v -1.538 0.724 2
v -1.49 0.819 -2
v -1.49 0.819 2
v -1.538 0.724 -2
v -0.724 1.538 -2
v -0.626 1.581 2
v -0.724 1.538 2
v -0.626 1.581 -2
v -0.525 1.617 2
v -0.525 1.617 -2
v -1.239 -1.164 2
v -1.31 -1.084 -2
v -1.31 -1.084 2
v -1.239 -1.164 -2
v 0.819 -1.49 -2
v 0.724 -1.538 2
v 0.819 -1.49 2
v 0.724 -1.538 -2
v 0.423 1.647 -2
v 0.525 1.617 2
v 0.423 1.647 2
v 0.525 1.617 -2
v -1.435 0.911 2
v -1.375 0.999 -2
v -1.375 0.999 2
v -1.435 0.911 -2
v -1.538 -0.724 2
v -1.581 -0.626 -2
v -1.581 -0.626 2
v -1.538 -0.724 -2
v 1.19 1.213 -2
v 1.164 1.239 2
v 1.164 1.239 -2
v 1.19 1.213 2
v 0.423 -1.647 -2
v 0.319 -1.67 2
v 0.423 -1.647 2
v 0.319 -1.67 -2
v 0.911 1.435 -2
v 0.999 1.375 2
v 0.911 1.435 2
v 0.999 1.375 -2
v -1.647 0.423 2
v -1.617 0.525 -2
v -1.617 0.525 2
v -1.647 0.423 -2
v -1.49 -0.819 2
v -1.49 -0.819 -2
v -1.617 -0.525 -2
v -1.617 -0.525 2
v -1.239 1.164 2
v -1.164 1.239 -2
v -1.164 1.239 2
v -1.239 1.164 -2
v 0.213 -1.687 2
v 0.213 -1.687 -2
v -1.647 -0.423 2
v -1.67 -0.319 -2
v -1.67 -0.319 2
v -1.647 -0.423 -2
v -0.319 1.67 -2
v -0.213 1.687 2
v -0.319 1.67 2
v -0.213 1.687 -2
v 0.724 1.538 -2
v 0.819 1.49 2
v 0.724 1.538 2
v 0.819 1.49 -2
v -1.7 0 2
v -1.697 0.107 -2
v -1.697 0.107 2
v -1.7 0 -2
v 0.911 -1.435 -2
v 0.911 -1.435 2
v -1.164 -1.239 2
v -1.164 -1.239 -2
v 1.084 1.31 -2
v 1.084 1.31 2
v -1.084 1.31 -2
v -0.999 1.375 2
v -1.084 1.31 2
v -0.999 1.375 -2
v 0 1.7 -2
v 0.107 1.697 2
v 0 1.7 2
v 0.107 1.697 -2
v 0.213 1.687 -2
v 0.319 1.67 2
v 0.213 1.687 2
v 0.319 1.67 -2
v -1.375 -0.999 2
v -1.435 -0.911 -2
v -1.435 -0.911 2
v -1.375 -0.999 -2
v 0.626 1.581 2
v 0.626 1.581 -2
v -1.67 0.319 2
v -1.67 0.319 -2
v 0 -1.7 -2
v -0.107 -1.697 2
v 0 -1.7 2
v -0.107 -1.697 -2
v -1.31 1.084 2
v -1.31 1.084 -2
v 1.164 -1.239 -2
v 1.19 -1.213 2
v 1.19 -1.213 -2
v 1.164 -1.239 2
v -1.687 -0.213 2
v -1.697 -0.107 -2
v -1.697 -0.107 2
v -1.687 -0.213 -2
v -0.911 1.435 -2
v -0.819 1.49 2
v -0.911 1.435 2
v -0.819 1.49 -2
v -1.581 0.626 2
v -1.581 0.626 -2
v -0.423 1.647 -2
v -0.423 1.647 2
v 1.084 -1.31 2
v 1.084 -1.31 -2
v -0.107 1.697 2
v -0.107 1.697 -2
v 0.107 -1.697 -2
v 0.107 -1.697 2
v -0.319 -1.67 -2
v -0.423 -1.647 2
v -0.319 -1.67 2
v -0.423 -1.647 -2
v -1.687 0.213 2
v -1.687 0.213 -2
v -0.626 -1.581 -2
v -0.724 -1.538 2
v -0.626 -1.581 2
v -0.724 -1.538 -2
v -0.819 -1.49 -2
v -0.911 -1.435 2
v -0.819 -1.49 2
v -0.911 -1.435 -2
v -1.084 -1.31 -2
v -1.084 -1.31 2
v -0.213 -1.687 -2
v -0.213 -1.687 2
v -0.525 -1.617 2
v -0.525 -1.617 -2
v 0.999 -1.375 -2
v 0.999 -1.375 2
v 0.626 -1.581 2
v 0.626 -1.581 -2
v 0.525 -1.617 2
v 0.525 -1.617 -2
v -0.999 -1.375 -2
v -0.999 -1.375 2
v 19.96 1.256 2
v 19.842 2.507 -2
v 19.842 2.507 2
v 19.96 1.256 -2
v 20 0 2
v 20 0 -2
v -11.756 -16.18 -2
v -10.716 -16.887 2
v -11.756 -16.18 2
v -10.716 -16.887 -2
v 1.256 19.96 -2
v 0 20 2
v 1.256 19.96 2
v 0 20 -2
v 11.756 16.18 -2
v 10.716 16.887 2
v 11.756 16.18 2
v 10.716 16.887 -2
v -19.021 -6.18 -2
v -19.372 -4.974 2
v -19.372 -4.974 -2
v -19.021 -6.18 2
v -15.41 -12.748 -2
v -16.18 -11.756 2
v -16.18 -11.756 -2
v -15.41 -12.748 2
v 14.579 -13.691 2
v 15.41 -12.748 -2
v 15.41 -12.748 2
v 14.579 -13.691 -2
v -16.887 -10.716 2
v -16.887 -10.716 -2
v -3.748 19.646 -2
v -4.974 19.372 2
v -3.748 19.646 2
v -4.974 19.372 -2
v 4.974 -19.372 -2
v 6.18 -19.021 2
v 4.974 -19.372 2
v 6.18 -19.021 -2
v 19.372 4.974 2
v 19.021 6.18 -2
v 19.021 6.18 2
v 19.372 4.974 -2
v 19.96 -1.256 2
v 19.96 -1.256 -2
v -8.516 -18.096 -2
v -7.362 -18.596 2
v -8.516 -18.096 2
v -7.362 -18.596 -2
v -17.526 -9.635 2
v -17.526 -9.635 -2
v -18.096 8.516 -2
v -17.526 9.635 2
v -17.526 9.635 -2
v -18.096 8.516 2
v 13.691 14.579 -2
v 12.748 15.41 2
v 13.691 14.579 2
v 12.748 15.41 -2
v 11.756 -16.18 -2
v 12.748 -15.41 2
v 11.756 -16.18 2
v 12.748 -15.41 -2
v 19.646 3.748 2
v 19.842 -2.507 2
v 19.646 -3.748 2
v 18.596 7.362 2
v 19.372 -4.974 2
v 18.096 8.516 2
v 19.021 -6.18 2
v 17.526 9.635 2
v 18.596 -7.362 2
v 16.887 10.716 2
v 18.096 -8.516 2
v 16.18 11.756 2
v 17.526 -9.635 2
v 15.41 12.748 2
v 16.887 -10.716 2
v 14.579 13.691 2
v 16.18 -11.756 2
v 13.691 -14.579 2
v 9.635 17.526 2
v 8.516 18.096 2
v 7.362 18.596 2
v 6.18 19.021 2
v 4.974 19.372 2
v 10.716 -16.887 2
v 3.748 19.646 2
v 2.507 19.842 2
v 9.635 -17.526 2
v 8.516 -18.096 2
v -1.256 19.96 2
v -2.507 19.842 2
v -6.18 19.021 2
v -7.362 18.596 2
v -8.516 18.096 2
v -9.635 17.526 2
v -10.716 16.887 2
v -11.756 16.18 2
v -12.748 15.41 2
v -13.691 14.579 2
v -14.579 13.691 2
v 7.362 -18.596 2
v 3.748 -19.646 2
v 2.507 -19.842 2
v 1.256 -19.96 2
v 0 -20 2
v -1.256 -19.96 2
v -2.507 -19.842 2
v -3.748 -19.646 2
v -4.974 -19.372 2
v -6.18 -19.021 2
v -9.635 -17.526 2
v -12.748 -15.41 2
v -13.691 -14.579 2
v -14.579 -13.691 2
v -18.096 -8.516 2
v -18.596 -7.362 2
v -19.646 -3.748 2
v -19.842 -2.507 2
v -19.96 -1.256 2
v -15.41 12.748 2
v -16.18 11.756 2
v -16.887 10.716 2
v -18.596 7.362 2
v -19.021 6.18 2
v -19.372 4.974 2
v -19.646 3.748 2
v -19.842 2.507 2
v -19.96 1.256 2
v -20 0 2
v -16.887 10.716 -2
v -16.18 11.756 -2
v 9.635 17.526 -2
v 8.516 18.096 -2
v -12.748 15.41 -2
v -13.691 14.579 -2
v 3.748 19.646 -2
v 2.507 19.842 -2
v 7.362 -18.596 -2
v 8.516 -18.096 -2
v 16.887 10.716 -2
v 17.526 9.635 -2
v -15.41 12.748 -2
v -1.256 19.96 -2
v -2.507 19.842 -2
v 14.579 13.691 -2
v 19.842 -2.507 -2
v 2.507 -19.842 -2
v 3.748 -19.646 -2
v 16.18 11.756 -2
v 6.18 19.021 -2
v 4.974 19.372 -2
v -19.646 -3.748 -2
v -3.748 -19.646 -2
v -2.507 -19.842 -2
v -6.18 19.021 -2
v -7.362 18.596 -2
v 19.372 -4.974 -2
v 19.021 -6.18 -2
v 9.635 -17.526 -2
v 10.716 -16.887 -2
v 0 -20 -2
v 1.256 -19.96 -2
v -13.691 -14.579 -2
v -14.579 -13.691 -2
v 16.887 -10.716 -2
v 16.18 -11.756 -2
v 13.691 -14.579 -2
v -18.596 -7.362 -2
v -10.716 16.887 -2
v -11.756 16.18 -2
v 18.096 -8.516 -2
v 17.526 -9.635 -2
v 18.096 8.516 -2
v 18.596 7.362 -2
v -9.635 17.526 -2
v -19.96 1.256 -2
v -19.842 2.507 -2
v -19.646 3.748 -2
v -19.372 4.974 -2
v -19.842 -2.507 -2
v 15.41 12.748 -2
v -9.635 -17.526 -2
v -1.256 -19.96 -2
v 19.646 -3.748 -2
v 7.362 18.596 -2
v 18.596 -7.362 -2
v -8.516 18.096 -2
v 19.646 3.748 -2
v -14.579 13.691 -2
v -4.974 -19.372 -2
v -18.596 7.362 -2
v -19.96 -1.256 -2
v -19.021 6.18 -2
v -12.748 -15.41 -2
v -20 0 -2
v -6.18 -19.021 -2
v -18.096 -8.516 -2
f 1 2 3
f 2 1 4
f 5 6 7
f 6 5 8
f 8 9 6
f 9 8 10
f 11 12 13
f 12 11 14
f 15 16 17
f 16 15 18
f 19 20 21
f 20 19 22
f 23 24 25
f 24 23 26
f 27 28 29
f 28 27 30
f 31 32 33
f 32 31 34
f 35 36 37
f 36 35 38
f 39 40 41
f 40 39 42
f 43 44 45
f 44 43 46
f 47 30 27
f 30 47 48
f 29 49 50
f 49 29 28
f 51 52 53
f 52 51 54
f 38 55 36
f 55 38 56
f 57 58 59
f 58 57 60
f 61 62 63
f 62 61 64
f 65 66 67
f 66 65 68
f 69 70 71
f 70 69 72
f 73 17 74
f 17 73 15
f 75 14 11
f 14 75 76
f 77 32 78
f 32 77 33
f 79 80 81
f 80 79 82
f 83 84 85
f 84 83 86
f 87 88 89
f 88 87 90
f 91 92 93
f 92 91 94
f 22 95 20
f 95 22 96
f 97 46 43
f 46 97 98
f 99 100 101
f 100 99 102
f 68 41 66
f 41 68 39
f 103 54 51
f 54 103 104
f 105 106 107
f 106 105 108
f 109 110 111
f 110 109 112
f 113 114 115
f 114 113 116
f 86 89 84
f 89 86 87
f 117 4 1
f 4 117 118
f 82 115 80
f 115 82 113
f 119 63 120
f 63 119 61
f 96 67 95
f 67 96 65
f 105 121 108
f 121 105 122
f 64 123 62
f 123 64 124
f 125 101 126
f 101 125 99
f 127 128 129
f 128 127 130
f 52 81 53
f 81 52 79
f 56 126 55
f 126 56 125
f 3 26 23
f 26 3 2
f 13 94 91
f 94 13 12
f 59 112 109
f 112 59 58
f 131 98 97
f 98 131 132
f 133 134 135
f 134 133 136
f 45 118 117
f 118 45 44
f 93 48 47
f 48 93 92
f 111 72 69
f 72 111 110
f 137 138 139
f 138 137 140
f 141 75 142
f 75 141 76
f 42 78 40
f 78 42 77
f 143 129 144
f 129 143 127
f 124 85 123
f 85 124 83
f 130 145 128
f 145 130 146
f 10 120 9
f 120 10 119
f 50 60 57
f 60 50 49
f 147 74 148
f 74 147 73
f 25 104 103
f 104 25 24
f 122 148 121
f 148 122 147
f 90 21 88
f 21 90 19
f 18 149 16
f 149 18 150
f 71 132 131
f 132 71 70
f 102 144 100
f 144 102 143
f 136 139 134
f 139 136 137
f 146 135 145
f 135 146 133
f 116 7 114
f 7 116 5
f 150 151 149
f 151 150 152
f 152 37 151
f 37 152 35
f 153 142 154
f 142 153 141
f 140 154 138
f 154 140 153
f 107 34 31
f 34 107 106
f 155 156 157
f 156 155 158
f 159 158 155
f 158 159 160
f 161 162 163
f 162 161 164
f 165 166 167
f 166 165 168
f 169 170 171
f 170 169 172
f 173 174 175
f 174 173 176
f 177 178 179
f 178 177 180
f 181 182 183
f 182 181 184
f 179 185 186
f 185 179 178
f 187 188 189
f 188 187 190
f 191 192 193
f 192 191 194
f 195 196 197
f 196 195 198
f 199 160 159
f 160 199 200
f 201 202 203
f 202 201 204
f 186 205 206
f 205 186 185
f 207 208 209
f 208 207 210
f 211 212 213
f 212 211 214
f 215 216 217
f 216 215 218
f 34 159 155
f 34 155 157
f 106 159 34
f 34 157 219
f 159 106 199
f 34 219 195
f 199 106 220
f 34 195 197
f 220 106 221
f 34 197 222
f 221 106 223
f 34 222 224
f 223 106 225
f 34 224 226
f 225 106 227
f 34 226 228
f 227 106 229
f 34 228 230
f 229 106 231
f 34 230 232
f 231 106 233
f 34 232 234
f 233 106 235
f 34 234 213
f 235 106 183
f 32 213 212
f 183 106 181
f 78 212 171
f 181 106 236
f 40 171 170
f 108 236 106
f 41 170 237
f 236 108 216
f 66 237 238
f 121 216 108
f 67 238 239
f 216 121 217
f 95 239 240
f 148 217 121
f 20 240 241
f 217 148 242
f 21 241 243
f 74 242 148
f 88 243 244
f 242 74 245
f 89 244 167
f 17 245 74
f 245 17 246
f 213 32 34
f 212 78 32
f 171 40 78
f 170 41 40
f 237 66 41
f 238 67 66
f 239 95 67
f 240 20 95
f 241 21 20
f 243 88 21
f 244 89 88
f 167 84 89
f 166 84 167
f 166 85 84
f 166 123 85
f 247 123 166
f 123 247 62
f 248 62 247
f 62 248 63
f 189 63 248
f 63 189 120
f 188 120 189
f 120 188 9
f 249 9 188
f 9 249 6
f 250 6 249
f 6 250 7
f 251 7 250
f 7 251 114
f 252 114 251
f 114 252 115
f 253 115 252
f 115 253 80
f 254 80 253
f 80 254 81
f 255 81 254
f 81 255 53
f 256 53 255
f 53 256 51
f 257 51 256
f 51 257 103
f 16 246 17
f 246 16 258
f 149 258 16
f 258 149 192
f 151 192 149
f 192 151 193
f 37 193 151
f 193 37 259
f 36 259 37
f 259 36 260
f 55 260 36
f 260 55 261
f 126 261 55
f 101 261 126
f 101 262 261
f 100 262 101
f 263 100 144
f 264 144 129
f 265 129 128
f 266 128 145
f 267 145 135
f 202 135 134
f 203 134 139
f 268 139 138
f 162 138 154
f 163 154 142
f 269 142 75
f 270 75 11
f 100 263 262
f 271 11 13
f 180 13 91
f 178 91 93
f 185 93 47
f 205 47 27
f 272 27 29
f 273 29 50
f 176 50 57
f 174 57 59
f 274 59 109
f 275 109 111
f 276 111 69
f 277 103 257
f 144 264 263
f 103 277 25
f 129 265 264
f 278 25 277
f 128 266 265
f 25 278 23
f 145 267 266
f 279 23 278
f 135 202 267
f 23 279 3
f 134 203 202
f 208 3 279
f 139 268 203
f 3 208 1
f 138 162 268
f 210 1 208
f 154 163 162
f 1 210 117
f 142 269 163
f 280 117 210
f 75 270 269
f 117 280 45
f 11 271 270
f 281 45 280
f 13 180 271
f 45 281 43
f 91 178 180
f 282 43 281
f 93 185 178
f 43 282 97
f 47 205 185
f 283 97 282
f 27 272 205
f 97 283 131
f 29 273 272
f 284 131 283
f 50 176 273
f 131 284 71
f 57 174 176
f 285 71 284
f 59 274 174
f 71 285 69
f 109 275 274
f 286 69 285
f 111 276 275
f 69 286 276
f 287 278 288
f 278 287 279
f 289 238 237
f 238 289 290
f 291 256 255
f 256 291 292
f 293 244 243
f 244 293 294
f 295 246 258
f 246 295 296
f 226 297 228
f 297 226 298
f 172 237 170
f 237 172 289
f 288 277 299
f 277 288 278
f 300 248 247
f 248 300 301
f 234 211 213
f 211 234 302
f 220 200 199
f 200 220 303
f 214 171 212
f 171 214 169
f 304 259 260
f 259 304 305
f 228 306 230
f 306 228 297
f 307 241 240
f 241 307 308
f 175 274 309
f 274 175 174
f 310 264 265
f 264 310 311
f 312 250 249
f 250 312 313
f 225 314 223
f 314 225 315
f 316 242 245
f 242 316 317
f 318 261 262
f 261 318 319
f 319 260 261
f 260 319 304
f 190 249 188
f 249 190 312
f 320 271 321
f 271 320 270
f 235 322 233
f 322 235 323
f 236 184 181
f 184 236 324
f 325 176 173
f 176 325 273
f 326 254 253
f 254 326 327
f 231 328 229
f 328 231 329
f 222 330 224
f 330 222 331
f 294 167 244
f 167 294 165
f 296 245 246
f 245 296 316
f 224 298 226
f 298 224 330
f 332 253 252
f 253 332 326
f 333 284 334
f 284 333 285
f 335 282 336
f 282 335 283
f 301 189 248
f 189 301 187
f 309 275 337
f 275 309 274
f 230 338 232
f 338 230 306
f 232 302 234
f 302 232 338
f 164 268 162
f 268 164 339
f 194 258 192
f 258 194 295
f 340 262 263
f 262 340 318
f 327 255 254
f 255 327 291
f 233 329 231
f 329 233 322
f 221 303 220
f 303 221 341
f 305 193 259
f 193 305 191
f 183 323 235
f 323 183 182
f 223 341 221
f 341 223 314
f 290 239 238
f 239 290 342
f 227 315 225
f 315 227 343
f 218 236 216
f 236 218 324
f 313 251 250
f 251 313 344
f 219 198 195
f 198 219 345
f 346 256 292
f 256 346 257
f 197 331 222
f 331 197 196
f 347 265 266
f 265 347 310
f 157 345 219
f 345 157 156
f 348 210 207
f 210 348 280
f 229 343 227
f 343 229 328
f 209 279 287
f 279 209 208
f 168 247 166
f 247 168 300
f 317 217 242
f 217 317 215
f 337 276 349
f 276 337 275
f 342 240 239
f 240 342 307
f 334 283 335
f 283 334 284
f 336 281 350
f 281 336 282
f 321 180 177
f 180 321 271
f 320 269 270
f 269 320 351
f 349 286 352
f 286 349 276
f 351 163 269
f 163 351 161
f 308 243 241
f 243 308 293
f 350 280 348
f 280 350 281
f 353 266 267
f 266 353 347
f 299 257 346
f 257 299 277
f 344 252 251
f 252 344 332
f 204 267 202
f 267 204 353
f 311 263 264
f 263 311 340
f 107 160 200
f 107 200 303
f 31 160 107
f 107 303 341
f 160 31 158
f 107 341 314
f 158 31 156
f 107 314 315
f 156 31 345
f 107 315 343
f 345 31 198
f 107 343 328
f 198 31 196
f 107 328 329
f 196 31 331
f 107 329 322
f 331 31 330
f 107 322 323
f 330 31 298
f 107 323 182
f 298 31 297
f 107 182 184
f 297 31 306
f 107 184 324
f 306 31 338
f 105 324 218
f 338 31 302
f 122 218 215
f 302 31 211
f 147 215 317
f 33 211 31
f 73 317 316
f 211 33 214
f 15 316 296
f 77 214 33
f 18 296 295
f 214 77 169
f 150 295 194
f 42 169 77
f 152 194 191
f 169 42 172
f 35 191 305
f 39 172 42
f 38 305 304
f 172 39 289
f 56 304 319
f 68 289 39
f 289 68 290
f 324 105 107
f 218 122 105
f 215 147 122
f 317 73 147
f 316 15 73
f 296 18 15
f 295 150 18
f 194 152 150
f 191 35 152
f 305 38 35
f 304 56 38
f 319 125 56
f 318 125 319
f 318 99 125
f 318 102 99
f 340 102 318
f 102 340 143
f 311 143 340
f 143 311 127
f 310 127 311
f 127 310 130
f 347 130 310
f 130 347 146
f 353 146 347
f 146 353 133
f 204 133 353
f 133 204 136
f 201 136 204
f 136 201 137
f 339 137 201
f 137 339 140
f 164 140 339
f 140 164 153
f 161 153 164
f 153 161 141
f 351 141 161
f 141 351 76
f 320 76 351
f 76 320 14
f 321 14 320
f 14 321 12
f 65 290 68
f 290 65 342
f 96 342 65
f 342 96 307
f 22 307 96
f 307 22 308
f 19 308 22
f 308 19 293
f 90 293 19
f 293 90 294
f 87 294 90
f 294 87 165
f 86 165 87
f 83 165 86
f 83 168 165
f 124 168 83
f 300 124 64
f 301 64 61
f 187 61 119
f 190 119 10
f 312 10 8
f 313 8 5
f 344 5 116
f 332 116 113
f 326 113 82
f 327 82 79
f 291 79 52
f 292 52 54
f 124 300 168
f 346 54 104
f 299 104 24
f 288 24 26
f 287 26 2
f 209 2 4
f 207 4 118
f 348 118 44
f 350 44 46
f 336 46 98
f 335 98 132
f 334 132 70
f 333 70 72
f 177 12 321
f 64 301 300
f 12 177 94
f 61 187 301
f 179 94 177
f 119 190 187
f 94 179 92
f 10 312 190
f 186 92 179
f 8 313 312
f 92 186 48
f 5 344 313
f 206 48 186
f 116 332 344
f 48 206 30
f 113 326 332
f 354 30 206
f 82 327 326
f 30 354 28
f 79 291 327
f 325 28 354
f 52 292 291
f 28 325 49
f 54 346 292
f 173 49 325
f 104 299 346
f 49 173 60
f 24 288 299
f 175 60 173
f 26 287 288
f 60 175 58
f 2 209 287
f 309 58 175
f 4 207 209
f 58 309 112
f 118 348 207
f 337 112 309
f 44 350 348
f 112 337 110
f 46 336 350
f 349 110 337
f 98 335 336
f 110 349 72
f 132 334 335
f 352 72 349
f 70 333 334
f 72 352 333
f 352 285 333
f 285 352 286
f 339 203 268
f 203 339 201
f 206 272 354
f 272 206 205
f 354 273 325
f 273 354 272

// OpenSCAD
$fn = 100;
difference()
{
  cylinder(h = 4, r = 20, center = true);
  difference()
  {
    cylinder(h = 7, r = 1.7, center = true);
    translate(v = [2.04, 0, 0])
    {
      cube(size = [1.7, 20, 20], center = true);
    }
  }
}
